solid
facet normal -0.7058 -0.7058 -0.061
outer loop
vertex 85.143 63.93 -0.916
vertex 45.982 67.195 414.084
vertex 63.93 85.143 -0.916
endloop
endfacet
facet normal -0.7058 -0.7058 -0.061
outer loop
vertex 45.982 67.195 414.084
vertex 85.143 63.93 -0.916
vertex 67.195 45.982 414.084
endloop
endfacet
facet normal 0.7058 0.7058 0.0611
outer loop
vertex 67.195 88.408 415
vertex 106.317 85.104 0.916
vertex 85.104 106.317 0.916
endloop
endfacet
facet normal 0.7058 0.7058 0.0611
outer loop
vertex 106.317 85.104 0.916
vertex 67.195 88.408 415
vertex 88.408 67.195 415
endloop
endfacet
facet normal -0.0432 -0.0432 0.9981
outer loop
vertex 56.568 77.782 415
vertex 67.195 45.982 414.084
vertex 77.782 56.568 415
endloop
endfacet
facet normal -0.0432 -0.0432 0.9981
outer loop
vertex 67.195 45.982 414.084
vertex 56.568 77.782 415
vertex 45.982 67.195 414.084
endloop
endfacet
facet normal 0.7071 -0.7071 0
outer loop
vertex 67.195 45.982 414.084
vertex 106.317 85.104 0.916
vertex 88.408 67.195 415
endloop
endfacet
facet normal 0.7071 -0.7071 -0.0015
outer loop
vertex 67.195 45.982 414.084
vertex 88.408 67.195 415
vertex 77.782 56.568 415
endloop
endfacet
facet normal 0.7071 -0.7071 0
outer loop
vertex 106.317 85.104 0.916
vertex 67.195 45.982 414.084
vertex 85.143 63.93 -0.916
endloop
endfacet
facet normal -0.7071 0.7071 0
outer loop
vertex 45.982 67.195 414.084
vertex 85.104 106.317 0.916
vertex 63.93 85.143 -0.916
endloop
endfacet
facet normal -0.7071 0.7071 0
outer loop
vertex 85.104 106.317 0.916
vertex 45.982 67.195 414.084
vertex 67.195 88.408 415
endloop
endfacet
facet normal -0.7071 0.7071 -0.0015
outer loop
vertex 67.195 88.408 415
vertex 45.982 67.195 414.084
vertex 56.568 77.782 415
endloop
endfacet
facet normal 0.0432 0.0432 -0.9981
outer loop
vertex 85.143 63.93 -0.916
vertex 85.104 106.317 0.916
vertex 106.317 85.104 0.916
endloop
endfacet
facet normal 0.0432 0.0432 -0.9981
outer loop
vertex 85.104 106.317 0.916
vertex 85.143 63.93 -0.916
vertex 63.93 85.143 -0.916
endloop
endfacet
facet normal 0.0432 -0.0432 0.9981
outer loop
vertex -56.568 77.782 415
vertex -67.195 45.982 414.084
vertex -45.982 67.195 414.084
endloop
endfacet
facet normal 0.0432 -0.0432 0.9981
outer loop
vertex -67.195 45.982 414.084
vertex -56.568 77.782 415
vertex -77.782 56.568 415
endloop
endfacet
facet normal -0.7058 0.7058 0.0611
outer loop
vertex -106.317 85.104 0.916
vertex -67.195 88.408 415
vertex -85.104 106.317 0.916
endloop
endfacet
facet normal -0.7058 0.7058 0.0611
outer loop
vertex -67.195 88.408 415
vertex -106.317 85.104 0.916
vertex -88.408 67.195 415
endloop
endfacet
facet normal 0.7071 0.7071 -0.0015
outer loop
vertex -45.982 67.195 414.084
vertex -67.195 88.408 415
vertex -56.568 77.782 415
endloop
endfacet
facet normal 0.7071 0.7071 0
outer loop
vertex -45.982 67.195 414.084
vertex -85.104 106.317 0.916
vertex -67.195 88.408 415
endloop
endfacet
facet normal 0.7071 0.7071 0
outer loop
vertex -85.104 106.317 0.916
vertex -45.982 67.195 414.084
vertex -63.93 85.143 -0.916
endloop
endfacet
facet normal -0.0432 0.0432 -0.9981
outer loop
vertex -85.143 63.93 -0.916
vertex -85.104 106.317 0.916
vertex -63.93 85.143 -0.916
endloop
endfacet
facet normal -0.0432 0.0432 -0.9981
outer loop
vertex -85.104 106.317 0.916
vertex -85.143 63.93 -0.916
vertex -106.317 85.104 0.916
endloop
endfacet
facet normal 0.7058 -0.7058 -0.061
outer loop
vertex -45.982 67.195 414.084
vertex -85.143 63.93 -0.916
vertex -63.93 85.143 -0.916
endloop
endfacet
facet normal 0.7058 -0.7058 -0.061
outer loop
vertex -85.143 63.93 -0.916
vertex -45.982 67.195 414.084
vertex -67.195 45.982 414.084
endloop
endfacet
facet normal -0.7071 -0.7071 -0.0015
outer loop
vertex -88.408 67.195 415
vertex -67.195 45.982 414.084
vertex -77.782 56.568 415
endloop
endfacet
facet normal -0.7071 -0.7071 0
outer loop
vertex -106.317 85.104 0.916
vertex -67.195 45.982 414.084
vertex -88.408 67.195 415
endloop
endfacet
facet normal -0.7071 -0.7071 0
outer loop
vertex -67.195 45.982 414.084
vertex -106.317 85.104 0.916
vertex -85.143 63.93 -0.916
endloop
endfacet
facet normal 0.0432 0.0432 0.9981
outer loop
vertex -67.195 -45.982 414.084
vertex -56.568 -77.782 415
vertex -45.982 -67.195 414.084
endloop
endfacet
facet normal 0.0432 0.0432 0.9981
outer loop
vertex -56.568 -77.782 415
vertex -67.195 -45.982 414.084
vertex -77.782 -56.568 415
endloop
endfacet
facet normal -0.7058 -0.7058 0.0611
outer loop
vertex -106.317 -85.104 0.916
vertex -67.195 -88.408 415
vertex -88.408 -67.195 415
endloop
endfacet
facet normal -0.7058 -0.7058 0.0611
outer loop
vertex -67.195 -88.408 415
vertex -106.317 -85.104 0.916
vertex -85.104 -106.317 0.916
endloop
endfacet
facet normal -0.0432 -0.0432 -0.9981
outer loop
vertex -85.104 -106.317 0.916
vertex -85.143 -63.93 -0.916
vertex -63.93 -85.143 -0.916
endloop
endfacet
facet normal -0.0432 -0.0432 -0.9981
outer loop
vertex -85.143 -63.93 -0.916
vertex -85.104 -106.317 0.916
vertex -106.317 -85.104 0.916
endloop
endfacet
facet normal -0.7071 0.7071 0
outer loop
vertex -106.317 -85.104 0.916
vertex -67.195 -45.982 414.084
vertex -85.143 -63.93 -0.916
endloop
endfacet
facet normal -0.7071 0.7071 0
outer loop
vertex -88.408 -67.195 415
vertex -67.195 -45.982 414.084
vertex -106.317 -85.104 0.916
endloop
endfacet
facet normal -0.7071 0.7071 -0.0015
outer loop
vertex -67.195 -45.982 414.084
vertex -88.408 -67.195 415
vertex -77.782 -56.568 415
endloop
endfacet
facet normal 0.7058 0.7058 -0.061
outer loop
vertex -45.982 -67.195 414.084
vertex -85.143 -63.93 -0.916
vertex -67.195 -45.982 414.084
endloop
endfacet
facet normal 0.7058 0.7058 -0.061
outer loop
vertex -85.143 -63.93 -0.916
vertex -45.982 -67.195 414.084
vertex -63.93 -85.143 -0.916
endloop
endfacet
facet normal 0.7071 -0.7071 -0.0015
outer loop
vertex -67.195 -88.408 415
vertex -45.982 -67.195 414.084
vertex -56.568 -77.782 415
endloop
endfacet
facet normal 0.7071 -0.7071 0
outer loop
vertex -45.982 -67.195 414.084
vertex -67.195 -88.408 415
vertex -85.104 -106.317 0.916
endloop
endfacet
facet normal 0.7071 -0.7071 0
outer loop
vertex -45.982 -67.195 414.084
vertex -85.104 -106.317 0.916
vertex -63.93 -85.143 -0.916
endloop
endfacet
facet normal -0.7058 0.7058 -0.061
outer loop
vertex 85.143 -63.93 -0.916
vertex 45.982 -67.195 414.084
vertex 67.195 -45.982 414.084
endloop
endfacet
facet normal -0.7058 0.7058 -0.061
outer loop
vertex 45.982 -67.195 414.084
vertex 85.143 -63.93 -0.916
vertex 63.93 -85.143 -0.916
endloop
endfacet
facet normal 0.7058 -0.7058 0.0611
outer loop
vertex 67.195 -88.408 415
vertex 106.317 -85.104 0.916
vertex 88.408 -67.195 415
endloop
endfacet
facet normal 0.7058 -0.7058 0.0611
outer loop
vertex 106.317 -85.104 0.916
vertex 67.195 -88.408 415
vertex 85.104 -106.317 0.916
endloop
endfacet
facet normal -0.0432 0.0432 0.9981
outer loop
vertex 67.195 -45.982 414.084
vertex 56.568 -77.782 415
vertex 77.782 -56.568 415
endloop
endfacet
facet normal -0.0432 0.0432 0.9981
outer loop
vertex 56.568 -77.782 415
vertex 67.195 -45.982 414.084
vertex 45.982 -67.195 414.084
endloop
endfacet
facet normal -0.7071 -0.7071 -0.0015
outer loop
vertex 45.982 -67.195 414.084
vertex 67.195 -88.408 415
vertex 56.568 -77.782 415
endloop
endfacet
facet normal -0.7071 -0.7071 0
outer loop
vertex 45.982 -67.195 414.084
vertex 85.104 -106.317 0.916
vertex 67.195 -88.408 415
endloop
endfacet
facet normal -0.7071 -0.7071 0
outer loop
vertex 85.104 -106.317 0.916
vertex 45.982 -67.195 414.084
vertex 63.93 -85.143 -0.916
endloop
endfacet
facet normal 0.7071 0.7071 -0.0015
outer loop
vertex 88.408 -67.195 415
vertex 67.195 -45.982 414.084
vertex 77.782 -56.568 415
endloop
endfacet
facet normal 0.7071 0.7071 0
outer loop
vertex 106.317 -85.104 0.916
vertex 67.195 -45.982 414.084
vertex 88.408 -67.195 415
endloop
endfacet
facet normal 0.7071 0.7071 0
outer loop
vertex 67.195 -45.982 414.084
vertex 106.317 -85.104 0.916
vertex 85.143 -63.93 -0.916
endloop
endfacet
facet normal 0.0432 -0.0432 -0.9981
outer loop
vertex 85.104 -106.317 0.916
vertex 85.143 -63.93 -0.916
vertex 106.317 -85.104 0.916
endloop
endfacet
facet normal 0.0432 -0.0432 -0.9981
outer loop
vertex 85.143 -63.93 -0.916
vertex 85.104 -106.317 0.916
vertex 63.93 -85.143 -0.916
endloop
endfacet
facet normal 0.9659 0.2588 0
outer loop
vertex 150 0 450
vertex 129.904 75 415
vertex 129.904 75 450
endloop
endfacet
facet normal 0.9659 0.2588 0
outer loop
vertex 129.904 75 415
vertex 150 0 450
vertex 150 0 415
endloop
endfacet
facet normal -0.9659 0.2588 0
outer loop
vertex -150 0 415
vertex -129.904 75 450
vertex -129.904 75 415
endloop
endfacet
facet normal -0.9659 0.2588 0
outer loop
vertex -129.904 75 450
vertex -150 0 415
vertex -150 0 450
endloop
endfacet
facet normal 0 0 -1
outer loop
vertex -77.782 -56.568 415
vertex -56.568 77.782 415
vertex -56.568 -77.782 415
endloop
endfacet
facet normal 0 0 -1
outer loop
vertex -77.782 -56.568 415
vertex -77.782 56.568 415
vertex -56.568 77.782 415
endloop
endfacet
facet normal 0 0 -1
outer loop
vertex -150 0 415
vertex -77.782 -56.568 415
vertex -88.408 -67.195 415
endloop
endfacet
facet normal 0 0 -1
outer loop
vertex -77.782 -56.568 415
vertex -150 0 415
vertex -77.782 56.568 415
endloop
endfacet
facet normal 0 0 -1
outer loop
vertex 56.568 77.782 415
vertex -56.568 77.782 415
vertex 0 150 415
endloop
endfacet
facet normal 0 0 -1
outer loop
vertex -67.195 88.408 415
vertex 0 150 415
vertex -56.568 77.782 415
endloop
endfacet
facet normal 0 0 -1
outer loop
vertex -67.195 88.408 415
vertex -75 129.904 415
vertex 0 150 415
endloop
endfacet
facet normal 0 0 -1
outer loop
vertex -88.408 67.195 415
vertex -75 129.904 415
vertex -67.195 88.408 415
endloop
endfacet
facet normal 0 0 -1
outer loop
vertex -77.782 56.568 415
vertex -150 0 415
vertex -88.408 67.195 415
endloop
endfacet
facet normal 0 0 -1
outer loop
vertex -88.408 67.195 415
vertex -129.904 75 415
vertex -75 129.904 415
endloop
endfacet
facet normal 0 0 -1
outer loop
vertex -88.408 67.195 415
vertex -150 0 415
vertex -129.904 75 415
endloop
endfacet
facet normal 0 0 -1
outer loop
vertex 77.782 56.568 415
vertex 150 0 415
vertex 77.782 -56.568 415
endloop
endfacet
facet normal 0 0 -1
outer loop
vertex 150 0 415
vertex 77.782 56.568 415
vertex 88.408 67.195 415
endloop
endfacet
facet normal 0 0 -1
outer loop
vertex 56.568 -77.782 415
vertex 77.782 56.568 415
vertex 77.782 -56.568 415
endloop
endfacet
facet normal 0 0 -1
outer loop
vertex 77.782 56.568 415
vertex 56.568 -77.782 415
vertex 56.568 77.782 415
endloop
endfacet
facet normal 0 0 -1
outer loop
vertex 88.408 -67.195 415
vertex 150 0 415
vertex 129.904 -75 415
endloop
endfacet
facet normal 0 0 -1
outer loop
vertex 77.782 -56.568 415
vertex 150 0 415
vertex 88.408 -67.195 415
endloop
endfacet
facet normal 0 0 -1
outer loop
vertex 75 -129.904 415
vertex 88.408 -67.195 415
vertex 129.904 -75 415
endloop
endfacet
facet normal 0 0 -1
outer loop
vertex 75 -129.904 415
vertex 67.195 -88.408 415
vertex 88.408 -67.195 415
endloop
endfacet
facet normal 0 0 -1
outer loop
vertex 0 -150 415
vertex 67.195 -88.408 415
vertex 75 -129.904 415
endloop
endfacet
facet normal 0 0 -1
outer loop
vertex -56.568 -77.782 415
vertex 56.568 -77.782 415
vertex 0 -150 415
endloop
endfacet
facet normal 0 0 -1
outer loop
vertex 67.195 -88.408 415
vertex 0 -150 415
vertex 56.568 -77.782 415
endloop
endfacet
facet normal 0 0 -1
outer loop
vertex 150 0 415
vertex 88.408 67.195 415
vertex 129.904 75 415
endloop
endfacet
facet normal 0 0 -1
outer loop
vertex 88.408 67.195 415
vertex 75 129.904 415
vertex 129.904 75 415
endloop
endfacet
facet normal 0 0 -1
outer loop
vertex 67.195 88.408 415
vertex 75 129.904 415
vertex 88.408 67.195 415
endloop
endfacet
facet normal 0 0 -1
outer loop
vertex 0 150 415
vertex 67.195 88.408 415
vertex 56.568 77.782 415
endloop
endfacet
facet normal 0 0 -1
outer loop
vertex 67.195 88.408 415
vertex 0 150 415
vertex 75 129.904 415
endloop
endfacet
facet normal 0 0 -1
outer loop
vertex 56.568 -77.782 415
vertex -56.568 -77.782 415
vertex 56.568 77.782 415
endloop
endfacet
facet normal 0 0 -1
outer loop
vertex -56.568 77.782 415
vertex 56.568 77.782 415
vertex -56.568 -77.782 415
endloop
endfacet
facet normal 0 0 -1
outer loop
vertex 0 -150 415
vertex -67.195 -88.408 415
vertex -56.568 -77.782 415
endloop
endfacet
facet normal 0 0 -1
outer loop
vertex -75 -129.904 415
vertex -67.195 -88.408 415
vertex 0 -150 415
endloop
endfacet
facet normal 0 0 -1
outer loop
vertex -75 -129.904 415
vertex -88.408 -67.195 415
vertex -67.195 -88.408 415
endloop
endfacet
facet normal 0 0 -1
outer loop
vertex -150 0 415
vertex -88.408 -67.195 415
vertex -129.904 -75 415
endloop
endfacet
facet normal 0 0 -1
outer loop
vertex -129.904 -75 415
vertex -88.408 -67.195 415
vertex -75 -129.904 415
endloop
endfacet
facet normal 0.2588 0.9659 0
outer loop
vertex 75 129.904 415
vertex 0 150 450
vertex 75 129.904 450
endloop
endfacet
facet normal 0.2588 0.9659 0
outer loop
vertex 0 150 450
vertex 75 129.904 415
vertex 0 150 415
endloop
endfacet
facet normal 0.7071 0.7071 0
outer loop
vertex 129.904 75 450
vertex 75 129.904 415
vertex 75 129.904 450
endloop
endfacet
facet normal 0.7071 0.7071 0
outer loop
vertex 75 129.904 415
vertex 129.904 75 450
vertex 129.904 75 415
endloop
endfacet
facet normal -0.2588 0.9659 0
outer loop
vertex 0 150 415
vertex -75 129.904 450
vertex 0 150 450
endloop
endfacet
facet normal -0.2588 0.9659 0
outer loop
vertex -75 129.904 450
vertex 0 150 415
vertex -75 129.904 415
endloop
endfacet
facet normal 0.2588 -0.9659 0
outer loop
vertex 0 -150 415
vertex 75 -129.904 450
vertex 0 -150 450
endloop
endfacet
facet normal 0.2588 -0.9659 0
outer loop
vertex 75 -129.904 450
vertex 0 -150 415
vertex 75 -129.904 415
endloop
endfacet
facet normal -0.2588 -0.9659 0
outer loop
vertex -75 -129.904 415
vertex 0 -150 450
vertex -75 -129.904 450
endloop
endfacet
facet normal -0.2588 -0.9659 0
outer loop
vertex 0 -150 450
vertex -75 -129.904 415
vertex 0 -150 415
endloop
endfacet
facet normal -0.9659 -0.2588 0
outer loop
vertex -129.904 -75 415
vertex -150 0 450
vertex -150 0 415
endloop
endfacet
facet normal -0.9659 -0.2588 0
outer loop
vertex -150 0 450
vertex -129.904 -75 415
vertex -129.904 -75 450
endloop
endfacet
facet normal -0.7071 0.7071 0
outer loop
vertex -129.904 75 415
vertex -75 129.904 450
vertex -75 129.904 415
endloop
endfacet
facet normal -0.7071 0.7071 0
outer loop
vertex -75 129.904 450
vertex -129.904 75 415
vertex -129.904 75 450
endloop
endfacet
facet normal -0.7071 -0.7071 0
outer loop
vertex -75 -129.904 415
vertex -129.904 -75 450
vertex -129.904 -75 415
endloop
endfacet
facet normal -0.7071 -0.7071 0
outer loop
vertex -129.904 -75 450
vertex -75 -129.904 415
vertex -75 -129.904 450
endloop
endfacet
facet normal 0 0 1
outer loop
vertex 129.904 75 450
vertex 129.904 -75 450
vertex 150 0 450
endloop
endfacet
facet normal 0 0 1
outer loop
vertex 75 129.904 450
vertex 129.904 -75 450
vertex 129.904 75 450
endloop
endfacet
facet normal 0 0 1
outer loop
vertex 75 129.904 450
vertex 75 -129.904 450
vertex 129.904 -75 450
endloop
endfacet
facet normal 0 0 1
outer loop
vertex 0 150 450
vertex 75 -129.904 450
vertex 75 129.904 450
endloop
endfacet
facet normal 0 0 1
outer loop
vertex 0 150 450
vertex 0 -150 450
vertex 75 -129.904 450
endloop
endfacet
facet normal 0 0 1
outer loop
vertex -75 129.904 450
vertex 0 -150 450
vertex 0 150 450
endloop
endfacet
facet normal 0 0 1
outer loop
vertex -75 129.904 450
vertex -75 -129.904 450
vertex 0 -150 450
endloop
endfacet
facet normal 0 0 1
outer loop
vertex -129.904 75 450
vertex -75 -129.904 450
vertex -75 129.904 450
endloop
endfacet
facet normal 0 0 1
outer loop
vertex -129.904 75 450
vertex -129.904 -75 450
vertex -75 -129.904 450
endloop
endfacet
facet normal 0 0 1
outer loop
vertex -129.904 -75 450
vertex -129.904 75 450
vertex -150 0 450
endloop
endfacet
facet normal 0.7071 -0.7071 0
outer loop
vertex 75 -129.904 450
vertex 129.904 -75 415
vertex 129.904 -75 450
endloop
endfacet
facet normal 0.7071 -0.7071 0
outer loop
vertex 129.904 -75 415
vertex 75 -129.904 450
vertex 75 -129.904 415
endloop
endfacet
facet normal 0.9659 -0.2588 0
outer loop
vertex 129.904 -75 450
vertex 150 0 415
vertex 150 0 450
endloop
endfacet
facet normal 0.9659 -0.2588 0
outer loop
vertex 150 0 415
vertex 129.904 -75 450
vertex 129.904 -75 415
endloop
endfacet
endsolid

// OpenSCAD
// file: tea_shop_furniture_parameters.scad
// =============================================================================
// TEA SHOP DIORAMA — GROUP 6: EXTERIOR FURNITURE PARAMETERS
// =============================================================================
// All units: mm (1000 mm = 1.0 m), 1:1 real-world scale (1000 units = 1 GTA unit).
// Shared global coordinate system (identical to Groups 1–5):
//   +X -> left -> right  (0 = left outer wall, BUILD_W = right outer wall)
//   +Y -> front -> back  (0 = front wall eave face, BUILD_D = back wall, porch in -Y)
//   +Z -> up             (0 = top surface of base slab / ground datum)
// =============================================================================

// =============================================================================
// 1. SHARED GLOBAL VARIABLES (Reused from Groups 1–5 — identical values)
// =============================================================================
WALL_T             = 250;   // wall panel thickness                      (0.25 m)
BUILD_W            = 6000;  // building width along X                    (6.00 m)
BUILD_D            = 4000;  // building depth along Y                    (4.00 m)
FRONT_H            = 2400;  // wall height at FRONT eave (short side)    (2.40 m)
WIN_X              = 600;   // left pier width / window start X datum    (0.60 m)
WIN_W              = 3400;  // service window width                      (3.40 m)
SILL_H             = 900;   // knee-wall sill height beneath window      (0.90 m)
BASE_H             = 200;   // base plinth vertical thickness            (0.20 m)
BASE_MARGIN_FRONT  = 3000;  // front porch slab depth (extends to Y=-3m) (3.00 m)

// Aliases for compatibility with earlier group files:
wall_thickness     = WALL_T;
building_width     = BUILD_W;
building_depth     = BUILD_D;
front_eave_height  = FRONT_H;
sill_height        = SILL_H;
base_front_margin  = BASE_MARGIN_FRONT;


// =============================================================================
// 2. GROUP 6 PARAMETERS — BENCH (Long Wooden Porch Bench)
// =============================================================================
// REFERENCE OBSERVATIONS (Images: page 1/2 daylight/night, page 5 clay,
// page 7 front elevation, page 8 wireframe, page 14 eye-level):
//
// 1. Bench Style & Proportions:
//    - Simple utilitarian Indian roadside tea stall wooden bench.
//    - Single flat solid rectangular wooden plank for the seat.
//    - Two leg assemblies (one at each end). Wireframe (page 8) and clay (page 5)
//      confirm each leg pair is NOT a solid A-frame slab, but TWO straight
//      square timber posts tied together under the seat by a horizontal cross
//      apron rail. The posts are vertical (0 deg angle) with inset mounting.
//    - Bench height is roughly half the window sill height:
//      SILL_H = 900 mm -> BENCH_HEIGHT = 460 mm (~18 inches standard seating).
//    - Bench length spans ~1500 mm, comfortably seating 3-4 patrons.
//    - Bench width is ~400 mm (standard 16-inch bench seat).
//
// [ESTIMATED DIMENSIONS NOTE]:
// - Bench top thickness (40 mm) estimated from front elevation pixel ratio
//   (~1/11 of bench height).
// - Leg post cross-section (45x45 mm) estimated from wireframe edge density.
// - Inset of legs from ends (80 mm) and edges (17.5 mm) estimated from clay shot.
// - Bench X position (X = 550 mm) sits under the left pier and left edge of
//   the service window, leaving clear passage to the counter and door.
// - Bench Y position (Y = -1250 mm) sits centrally under the pergola canopy
//   (between wall Y=0 and front post line Y=-2250 mm).
BENCH_LENGTH          = 1500; // bench seat plank length along X (mm)
BENCH_WIDTH           = 400;  // bench seat plank width along Y (mm)
BENCH_HEIGHT          = 460;  // total seat height from ground (Z=0) to top face (mm)
BENCH_TOP_THICKNESS   = 40;   // thickness of seat top plank (mm)

// Bench Leg Pair (2 posts + top cross apron rail per end):
BENCH_LEG_SIZE        = 45;   // square timber leg cross-section (45x45 mm)
BENCH_LEG_ANGLE       = 0;    // leg angle from vertical (0 deg = straight vertical posts)
BENCH_LEG_PAIR_WIDTH  = 320;  // center-to-center span across Y of the 2 end legs (mm)
                              // Outer edge-to-edge span = 320 + 45 = 365 mm
                              // Leaves (400 - 365)/2 = 17.5 mm front/back overhang
BENCH_LEG_INSET_X     = 80;   // inset of leg center from left/right plank ends (mm)
BENCH_APRON_WIDTH     = 30;   // thickness of horizontal cross apron rail along X (mm)
BENCH_APRON_HEIGHT    = 50;   // vertical height of horizontal cross apron rail (mm)

// Bench Porch Placement (World Coordinates):
BENCH_POS_X           = 550;  // left edge X coordinate of bench top (mm)
BENCH_POS_Y           = -1250;// center Y coordinate of bench (mm)
                              // Back edge is at Y = -1050 mm, Front edge at Y = -1450 mm
BENCH_ROT_Z           = 0;    // rotation angle about Z (0 = parallel to front wall)


// =============================================================================
// 3. GROUP 6 PARAMETERS — STOOLS (Round Wooden Porch Stools)
// =============================================================================
// REFERENCE OBSERVATIONS (Images: page 1/2, page 5 clay, page 7 elevation,
// page 8 wireframe, page 13 interior close-up, page 14 eye-level):
//
// 1. Stool Style & Proportions:
//    - Round wooden top seat disc with bevel/slight chamfer, resting on
//      4 splayed square timber legs.
//    - Polycount optimization: 12-sided cylinder ( = 12) provides a clean,
//      authentic round silhouette while keeping polycount low for GTA V MLO props.
//    - Stool height is 450 mm (level with the bench, exactly half the 900mm sill).
//    - Seat diameter is 300 mm (~12 inches), standard for street tea stalls.
//    - Legs splay outward slightly from under the seat disc (angle ~3.5 deg),
//      ensuring stability while remaining inside the seat diameter footprint at the base.
//
// 2. Stool Clustering Layout:
//    - The reference images show 3 stools clustered together directly in front of
//      the counter window (X = 2500..3400 mm), where patrons sit to drink tea.
//    - They are NOT placed on a rigid grid:
//        * Stool 1: [2550, -1550] — front-left of the cluster, closer to walkway
//        * Stool 2: [2850, -1050] — back-mid of the cluster, closer to counter window
//        * Stool 3: [3350, -1400] — front-right of the cluster, near entrance path
//
// [ESTIMATED DIMENSIONS NOTE]:
// - Seat thickness (35 mm) estimated from front elevation and wireframe.
// - Leg cross-section (30x30 mm) estimated from wireframe edge density.
// - Splay angle (3.5 deg) estimated from wireframe slope relative to vertical.
STOOL_HEIGHT          = 450;  // total height to top of stool seat (mm)
STOOL_SEAT_DIA        = 300;  // round seat disc diameter (mm)
STOOL_SEAT_RADIUS     = STOOL_SEAT_DIA / 2; // 150 mm
STOOL_SEAT_THICKNESS  = 35;   // seat disc thickness (mm)

// Stool Leg Dimensions:
STOOL_LEG_SIZE        = 30;   // square timber leg cross-section (30x30 mm)
STOOL_LEG_SPLAY_ANGLE = 3.5;  // outward splay angle from vertical (degrees)
STOOL_LEG_RADIUS_TOP  = 95;   // radial distance of leg center from stool center at top (mm)
                              // Leaves 150 - (95 + 15) = 40 mm seat lip overhang

// Derived stool leg length along its angled axis:
STOOL_LEG_H           = STOOL_HEIGHT - STOOL_SEAT_THICKNESS; // vertical leg span (415 mm)
STOOL_LEG_LEN         = STOOL_LEG_H / cos(STOOL_LEG_SPLAY_ANGLE); // angled length (~415.78 mm)

// Low-poly curvature resolution for MLO optimization:
STOOL_FN              = 12;   // 12-sided polygon for round seat disc (MLO target)

// Stool Positions Array (3 clustered [X, Y] coordinates on the porch):
STOOL_POSITIONS = [
    [2550, -1550],  // Stool 1: Front-Left
    [2850, -1050],  // Stool 2: Back-Mid (near counter)
    [3350, -1400]   // Stool 3: Front-Right (near entrance)
];
// main file
// =============================================================================
// TEA SHOP DIORAMA — GROUP 6: STOOL (CENTERED AT LOCAL ORIGIN)
// =============================================================================
// Standalone export for ONE round stool centered at [0, 0, 0] for Blender editing.
// Diameter 300 mm, Height 450 mm, resting on Z = 0.
// =============================================================================

include <tea_shop_furniture_modules.scad>;

stool(index = 0, world_pos = false);
